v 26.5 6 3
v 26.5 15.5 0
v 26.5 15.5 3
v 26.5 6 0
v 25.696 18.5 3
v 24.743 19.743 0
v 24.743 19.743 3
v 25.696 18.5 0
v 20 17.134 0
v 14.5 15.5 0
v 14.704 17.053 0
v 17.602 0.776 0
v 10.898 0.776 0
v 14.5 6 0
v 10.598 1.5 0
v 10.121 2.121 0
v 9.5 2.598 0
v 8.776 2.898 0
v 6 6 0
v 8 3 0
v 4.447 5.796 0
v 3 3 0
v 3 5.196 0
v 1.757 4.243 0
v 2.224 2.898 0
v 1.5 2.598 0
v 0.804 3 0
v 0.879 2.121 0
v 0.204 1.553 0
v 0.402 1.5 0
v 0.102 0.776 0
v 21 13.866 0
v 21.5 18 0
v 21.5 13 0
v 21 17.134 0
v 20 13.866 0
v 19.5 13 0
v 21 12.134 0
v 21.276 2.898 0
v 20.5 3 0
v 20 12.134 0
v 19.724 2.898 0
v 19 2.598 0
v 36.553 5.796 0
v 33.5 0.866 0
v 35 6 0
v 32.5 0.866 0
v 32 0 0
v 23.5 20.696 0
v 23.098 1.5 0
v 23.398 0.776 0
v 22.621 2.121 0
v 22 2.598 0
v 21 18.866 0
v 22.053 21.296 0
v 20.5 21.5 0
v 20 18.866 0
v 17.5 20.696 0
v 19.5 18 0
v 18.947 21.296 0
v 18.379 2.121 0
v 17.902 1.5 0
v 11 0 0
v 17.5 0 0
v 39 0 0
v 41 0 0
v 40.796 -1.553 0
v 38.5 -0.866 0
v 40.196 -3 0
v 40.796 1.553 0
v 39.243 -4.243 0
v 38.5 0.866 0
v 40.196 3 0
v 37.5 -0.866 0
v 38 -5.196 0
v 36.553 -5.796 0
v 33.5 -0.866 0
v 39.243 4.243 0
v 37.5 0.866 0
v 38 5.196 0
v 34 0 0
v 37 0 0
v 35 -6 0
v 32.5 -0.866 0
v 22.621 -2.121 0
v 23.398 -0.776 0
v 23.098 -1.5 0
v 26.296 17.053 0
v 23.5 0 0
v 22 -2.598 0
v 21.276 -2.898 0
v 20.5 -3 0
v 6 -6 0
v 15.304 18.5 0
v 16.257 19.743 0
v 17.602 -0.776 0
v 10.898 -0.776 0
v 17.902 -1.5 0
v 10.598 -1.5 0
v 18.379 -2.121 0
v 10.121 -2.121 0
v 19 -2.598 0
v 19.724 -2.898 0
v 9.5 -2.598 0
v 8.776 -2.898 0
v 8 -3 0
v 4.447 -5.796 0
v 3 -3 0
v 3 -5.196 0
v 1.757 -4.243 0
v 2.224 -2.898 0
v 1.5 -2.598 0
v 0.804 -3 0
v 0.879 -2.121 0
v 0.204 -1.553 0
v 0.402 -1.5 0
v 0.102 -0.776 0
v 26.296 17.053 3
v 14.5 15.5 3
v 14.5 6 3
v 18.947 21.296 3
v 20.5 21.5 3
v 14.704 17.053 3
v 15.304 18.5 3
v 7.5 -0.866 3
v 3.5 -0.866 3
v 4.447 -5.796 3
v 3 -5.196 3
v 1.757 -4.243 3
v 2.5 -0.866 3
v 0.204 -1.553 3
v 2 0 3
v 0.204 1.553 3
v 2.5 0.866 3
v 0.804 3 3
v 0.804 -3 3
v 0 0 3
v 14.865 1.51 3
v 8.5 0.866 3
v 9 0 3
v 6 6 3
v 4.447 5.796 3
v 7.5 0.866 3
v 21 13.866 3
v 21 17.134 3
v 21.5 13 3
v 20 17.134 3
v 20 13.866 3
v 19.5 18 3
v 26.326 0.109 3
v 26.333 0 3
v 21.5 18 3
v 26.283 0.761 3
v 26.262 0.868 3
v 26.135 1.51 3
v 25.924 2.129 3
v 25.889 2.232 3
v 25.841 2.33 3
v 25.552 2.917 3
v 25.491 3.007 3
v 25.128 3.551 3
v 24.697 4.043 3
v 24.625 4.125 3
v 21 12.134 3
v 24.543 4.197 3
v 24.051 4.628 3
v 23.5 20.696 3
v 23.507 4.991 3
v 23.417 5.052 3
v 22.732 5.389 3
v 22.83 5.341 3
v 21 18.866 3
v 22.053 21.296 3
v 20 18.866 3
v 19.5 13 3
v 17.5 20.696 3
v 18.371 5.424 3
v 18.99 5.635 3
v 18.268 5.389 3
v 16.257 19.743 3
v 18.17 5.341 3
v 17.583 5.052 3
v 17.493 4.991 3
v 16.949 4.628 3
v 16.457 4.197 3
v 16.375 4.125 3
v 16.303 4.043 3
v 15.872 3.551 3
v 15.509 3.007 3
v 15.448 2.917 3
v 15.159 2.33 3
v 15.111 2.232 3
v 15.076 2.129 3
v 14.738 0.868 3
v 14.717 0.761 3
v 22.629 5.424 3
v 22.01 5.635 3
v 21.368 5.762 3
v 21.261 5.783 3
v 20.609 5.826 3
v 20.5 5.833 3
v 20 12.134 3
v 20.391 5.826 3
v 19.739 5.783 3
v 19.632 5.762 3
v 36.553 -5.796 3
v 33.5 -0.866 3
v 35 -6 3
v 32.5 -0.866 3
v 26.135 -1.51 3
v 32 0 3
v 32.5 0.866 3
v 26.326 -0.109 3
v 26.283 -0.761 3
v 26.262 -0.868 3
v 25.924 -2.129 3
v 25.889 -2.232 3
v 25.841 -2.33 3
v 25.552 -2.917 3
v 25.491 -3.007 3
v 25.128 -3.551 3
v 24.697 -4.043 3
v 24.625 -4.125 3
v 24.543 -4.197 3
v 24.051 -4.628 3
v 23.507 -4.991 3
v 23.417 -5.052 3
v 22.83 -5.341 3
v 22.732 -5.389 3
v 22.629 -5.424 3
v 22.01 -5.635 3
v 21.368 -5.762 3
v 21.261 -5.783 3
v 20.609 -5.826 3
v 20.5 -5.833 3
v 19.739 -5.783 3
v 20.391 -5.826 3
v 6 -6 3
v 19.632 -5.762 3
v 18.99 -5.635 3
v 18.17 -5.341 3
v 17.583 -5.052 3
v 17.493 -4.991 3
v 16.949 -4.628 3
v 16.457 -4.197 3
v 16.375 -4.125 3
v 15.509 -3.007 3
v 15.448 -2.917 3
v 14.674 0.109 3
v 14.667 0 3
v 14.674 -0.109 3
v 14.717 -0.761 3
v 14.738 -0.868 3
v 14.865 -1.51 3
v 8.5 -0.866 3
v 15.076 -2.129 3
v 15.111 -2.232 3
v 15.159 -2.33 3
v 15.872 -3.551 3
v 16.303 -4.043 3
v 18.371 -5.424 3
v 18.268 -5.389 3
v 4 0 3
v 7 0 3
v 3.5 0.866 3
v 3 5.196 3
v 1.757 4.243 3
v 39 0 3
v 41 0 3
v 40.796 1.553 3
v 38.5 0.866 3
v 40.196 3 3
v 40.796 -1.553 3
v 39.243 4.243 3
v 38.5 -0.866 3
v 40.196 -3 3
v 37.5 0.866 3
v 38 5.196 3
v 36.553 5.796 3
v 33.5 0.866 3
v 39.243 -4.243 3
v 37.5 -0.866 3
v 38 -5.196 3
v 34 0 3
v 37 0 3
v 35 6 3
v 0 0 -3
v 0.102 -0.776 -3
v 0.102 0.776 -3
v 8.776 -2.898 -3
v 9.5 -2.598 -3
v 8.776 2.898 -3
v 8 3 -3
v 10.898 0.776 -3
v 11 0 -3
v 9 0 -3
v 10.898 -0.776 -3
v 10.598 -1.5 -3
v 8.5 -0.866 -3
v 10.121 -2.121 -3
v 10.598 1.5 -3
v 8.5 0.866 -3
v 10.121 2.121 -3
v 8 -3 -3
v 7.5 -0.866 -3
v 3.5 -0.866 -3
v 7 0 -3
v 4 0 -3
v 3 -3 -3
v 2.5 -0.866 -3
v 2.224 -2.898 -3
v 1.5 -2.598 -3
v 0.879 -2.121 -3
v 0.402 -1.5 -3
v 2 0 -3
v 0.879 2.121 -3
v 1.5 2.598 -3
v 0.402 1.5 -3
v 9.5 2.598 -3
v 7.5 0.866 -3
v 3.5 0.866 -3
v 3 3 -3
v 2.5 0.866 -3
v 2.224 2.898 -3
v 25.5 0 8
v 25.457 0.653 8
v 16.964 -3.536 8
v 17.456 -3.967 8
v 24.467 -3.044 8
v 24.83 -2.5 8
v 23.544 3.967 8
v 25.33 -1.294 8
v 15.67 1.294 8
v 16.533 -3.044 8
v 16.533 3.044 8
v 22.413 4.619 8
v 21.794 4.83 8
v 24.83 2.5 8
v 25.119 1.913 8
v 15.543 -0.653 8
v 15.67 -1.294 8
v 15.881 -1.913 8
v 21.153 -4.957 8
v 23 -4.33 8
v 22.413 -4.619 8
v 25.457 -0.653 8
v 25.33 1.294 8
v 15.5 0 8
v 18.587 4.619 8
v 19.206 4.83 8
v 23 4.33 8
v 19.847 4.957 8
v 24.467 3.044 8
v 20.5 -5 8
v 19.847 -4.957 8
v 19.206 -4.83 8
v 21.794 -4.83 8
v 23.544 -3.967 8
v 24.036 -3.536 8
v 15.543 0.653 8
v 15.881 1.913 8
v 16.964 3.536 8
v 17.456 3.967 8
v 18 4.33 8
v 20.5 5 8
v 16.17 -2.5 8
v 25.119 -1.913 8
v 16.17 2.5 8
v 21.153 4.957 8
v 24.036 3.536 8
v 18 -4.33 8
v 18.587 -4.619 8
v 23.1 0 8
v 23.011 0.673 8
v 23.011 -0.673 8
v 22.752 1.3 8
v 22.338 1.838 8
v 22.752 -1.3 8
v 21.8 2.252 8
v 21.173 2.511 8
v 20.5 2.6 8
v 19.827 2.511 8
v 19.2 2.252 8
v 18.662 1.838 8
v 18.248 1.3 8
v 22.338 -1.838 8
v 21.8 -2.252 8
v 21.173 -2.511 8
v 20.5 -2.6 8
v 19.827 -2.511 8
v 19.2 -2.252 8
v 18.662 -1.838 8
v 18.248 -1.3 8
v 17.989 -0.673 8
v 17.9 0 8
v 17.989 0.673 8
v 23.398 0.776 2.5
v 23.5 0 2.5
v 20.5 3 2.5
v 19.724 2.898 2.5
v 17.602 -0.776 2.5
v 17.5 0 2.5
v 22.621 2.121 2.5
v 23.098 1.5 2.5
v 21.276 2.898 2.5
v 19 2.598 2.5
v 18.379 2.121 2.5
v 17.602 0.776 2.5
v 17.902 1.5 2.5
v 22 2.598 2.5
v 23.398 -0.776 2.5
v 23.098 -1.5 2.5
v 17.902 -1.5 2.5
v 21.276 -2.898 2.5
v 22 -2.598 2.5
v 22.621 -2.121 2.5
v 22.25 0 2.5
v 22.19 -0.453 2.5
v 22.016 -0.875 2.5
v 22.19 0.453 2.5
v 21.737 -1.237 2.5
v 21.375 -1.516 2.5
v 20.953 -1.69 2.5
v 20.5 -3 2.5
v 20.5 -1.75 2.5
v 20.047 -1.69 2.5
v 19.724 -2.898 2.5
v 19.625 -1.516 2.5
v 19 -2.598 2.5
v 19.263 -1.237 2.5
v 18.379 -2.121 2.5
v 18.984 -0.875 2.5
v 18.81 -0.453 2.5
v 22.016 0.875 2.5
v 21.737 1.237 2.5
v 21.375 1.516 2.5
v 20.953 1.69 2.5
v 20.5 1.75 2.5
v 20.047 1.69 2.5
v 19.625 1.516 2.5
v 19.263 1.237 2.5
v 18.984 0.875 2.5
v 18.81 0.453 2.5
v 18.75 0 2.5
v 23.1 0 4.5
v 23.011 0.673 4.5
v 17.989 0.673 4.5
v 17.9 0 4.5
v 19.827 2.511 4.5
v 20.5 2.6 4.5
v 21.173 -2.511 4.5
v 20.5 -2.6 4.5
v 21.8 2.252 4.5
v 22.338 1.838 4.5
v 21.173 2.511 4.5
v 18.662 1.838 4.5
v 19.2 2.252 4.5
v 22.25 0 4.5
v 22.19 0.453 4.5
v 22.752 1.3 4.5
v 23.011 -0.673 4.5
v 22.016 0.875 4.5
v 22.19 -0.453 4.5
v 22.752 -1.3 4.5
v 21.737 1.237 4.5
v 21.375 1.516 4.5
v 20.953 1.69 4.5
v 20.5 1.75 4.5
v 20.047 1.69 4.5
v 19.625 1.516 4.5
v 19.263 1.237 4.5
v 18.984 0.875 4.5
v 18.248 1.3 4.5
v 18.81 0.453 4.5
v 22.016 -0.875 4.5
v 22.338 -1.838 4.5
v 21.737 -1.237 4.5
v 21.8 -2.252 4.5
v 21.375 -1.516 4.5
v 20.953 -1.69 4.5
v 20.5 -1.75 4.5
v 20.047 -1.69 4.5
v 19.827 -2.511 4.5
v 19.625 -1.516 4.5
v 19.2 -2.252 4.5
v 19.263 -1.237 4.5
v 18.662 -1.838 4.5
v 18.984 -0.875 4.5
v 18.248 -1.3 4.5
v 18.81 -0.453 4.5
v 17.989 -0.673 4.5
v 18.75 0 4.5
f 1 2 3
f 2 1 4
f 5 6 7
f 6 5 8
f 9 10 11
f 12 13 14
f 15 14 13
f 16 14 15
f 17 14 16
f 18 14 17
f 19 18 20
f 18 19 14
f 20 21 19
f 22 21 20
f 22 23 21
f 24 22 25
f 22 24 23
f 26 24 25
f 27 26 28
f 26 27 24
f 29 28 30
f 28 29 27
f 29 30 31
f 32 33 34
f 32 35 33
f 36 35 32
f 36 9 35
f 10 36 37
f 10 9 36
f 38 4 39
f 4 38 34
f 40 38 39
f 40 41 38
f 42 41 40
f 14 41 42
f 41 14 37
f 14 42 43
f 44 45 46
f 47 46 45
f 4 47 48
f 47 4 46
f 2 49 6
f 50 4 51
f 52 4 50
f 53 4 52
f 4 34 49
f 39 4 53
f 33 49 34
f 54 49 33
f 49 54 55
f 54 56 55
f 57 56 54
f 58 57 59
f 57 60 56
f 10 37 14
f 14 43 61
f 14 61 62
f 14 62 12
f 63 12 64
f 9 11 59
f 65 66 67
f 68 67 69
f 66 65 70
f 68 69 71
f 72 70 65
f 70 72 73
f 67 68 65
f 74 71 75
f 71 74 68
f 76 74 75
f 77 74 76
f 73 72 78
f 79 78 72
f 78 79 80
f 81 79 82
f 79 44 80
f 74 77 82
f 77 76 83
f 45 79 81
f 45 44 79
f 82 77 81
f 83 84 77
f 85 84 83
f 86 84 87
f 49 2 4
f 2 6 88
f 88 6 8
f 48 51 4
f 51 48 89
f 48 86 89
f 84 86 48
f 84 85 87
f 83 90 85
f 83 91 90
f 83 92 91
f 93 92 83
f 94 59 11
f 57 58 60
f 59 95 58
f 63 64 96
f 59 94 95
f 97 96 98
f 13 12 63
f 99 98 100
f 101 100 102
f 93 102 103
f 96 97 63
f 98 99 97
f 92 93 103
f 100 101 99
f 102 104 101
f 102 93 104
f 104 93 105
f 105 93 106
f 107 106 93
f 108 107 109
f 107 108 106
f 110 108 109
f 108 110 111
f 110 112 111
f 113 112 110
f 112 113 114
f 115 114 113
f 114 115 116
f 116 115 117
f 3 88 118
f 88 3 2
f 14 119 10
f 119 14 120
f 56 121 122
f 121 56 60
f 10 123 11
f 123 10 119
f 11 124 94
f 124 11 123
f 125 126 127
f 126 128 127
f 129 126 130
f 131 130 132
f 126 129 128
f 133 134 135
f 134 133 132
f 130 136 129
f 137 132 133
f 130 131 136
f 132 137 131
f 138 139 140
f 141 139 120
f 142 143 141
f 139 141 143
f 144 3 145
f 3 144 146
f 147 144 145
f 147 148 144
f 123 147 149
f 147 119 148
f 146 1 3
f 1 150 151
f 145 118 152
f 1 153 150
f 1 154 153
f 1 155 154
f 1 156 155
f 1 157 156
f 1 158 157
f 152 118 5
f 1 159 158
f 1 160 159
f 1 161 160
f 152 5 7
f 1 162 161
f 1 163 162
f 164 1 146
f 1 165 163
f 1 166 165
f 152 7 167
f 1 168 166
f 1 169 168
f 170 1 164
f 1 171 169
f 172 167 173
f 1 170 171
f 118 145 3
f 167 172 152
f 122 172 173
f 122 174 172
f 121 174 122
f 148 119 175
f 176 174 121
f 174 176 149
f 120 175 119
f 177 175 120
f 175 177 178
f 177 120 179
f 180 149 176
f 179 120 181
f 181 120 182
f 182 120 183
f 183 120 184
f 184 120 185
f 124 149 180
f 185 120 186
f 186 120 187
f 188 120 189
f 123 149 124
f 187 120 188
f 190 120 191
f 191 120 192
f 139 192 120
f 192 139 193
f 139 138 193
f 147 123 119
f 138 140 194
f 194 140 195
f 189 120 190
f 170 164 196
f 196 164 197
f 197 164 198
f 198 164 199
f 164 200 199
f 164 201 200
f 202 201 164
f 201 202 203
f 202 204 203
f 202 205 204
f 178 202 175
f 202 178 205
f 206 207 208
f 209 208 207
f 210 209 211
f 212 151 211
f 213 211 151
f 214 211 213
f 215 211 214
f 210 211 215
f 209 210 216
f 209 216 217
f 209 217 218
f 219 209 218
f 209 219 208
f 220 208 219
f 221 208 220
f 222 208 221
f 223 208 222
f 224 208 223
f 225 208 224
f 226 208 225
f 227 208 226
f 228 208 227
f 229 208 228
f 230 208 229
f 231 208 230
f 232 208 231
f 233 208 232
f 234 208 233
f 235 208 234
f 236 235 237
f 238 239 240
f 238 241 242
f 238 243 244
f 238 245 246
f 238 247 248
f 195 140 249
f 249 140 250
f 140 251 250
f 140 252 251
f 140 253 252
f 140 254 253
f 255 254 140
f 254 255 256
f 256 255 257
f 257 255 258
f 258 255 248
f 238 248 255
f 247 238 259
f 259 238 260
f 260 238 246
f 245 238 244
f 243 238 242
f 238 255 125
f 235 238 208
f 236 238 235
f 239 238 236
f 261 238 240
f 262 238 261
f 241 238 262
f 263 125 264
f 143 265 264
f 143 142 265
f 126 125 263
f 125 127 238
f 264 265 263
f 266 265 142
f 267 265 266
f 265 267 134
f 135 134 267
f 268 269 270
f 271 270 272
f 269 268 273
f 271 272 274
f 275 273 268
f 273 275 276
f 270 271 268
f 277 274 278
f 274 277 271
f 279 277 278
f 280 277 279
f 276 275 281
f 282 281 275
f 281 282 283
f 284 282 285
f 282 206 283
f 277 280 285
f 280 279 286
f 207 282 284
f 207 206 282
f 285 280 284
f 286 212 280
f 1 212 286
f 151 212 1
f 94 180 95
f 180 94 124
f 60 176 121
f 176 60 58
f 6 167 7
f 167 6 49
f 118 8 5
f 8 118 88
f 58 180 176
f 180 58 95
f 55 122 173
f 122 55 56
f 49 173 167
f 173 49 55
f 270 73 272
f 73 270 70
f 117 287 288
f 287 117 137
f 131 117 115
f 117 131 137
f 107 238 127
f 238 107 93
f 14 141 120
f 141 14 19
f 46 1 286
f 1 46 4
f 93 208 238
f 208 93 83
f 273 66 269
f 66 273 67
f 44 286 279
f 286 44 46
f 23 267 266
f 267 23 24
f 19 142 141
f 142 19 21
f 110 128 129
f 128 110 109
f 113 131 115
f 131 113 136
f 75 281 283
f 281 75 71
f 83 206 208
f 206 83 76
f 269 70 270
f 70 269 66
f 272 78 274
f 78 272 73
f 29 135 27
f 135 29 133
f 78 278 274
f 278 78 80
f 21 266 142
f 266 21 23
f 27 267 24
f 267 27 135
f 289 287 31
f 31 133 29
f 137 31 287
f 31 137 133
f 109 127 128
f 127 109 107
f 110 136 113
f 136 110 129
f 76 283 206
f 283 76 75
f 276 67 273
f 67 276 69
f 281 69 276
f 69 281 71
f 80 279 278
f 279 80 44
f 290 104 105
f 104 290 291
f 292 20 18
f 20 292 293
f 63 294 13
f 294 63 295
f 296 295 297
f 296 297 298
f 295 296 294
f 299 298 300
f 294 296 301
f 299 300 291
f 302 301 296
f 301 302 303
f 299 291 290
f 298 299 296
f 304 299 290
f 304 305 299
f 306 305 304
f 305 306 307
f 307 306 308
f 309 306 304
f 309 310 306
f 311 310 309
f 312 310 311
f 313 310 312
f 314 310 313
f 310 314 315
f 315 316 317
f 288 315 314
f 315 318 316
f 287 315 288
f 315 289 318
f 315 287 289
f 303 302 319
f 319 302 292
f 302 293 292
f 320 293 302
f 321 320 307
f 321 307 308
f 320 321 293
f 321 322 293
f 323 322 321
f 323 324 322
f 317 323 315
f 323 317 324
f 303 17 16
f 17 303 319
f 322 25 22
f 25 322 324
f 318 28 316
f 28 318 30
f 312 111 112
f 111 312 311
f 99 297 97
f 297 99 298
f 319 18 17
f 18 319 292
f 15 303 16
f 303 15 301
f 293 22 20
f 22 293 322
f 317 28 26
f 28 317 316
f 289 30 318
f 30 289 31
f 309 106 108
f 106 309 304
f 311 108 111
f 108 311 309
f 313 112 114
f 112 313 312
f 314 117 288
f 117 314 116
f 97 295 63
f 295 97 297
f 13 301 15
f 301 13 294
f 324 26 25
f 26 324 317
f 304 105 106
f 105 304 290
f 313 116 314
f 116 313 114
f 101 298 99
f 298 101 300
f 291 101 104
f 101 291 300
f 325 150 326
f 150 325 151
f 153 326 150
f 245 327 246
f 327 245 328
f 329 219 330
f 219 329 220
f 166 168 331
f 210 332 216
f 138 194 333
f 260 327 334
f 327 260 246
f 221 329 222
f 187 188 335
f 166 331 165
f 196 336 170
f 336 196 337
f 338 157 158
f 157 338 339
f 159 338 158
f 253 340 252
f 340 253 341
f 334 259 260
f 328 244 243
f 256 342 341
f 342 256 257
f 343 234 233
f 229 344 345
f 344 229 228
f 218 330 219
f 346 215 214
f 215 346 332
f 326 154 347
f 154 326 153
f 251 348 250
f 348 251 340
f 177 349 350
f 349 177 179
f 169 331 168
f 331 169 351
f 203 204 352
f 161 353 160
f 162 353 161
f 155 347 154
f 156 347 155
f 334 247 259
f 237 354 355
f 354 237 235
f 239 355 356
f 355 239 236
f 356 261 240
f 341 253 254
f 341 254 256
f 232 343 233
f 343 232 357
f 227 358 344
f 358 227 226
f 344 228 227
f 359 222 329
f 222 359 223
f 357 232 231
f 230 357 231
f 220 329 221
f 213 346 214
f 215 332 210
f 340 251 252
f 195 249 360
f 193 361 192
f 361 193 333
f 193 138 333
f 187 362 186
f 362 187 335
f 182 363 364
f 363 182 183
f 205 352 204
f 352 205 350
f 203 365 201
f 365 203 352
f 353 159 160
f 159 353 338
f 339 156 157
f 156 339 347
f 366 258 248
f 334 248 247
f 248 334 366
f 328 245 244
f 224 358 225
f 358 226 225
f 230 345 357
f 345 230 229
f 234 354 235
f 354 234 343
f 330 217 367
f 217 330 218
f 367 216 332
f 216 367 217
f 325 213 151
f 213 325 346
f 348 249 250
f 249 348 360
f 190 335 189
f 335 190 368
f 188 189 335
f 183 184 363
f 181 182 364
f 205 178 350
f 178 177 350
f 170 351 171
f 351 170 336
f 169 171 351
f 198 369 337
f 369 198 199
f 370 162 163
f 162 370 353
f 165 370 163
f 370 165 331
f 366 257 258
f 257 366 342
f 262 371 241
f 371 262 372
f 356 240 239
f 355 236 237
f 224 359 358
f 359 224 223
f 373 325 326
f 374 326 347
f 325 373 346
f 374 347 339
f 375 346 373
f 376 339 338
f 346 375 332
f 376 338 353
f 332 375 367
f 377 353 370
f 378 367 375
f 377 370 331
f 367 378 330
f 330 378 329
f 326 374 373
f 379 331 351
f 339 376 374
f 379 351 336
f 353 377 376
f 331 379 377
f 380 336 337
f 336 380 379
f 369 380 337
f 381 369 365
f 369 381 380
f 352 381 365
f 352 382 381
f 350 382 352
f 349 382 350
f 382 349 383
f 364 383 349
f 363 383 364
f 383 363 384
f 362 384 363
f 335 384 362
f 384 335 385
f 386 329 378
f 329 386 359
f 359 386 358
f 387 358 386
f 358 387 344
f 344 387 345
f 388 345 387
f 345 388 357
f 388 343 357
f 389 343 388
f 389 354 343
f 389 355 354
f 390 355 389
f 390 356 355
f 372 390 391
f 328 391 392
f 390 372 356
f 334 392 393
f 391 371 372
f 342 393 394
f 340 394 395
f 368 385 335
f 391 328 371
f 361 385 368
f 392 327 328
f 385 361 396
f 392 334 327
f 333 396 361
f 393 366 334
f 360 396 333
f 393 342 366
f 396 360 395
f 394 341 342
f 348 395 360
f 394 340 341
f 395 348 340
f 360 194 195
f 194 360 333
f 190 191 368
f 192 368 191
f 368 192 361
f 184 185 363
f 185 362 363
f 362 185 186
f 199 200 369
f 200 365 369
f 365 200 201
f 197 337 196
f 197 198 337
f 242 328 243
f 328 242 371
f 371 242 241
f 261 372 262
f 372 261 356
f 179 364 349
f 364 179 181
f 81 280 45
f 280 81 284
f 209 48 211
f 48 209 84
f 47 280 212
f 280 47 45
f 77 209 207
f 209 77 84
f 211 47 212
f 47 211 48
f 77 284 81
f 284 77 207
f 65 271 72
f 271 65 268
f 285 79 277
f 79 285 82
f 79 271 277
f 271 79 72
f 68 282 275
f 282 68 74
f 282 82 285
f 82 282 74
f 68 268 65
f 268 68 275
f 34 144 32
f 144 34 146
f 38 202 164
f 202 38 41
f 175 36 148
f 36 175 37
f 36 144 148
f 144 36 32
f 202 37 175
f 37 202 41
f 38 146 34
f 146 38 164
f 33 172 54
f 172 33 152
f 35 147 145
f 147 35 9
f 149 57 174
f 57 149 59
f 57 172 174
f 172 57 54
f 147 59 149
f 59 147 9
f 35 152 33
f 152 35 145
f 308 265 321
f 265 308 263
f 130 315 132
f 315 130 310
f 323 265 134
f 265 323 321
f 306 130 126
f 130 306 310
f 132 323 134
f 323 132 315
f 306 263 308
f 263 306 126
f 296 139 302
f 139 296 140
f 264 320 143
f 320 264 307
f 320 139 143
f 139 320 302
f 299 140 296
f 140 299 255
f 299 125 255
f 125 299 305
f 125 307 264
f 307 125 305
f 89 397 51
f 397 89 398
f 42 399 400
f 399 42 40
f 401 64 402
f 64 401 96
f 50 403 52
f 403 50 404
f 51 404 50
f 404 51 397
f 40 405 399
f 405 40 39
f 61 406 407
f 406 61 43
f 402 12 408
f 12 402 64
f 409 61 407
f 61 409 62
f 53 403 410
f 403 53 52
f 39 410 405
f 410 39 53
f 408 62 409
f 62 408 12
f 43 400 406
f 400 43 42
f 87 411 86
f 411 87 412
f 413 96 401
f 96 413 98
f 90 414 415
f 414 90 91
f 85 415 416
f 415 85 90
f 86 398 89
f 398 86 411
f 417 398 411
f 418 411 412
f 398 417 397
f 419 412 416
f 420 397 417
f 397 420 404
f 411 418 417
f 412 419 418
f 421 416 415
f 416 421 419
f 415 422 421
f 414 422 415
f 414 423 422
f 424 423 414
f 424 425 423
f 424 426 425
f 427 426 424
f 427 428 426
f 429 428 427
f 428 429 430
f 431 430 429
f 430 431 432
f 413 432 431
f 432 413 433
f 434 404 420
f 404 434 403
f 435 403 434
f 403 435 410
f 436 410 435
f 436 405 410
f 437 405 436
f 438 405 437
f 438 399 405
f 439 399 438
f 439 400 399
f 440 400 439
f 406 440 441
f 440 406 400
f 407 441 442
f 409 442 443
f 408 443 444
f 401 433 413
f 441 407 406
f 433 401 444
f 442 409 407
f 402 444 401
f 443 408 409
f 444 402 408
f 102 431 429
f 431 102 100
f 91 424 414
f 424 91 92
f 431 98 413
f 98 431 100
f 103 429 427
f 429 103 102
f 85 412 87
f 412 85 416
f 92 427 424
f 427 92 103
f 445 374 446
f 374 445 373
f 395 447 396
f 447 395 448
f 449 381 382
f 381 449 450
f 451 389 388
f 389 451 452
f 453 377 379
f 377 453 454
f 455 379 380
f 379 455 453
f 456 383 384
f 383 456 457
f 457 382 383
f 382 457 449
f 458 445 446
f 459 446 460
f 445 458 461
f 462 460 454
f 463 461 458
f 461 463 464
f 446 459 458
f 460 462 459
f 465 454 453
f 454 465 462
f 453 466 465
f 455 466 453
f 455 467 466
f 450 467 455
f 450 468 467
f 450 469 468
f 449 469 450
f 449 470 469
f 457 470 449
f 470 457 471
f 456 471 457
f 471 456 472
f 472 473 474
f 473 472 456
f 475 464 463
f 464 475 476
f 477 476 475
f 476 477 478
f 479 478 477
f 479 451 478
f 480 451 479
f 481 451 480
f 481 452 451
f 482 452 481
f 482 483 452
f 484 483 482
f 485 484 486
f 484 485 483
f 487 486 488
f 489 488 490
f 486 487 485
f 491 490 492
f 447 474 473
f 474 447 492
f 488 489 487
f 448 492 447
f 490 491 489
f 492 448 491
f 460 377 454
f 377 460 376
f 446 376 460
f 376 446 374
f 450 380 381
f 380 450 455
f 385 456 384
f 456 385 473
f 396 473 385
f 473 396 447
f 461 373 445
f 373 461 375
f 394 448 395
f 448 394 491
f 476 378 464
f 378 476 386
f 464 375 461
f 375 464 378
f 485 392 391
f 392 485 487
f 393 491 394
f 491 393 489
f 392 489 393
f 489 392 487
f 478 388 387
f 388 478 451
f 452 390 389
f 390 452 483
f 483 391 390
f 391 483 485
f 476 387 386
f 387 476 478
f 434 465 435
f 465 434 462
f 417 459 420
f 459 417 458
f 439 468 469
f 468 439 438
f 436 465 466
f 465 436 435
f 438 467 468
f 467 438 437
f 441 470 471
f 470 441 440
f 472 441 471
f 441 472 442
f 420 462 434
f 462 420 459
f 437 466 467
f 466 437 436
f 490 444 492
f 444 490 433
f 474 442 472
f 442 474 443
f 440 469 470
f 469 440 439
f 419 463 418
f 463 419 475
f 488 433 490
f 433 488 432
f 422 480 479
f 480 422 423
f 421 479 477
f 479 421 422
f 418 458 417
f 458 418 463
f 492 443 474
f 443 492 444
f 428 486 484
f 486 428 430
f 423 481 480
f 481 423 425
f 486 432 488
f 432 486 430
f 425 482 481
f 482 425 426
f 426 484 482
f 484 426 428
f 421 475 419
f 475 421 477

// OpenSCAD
difference(){
union(){
hull(){
    translate([41/2,0,0])cylinder(r=12/2,h=3,$fn=24);
    translate([41/2,27.5-12,0])cylinder(r=12/2,h=3,$fn=24);
}
hull(){
    translate([41-6,0,0])cylinder(r=12/2,h=3,$fn=24);
    translate([0+6,0,0])cylinder(r=12/2,h=3,$fn=24);
}

translate([0,0,-3])
hull(){
    translate([11-3,0,0])cylinder(r=6/2,h=4,$fn=24);
    translate([0+3,0,0])cylinder(r=6/2,h=4,$fn=24);
}


translate([41/2,0,2])cylinder(r1=12/2,r2=10/2,h=6,$fn=48);
}
union(){
    //huecos
translate([3,0,-5])cylinder(r=2/2,h=10,$fn=6);
translate([3+2+3,0,-5])cylinder(r=2/2,h=10,$fn=6);

translate([7+23,0,0]){
    translate([3,0,-2])cylinder(r=2/2,h=10,$fn=6);
    translate([3+2+3,0,-2])cylinder(r=2/2,h=10,$fn=6);
}

translate([41/2,-3-2.5+18-2.5,0]){
    translate([0,3,-2])cylinder(r=2/2,h=10,$fn=6);
    translate([0,3+2+3,-2])cylinder(r=2/2,h=10,$fn=6);
}
}
translate([41/2,0,-1])cylinder(r=6/2,h=2.5+1,$fn=24);
//el que sigue deberia ser un engranaje de 25 dientes
translate([41/2,0,3.5+1])cylinder(r=5.2/2,h=3.5+1,$fn=24);
translate([41/2,0,-2])cylinder(r=3.5/2,h=10,$fn=24);
}
